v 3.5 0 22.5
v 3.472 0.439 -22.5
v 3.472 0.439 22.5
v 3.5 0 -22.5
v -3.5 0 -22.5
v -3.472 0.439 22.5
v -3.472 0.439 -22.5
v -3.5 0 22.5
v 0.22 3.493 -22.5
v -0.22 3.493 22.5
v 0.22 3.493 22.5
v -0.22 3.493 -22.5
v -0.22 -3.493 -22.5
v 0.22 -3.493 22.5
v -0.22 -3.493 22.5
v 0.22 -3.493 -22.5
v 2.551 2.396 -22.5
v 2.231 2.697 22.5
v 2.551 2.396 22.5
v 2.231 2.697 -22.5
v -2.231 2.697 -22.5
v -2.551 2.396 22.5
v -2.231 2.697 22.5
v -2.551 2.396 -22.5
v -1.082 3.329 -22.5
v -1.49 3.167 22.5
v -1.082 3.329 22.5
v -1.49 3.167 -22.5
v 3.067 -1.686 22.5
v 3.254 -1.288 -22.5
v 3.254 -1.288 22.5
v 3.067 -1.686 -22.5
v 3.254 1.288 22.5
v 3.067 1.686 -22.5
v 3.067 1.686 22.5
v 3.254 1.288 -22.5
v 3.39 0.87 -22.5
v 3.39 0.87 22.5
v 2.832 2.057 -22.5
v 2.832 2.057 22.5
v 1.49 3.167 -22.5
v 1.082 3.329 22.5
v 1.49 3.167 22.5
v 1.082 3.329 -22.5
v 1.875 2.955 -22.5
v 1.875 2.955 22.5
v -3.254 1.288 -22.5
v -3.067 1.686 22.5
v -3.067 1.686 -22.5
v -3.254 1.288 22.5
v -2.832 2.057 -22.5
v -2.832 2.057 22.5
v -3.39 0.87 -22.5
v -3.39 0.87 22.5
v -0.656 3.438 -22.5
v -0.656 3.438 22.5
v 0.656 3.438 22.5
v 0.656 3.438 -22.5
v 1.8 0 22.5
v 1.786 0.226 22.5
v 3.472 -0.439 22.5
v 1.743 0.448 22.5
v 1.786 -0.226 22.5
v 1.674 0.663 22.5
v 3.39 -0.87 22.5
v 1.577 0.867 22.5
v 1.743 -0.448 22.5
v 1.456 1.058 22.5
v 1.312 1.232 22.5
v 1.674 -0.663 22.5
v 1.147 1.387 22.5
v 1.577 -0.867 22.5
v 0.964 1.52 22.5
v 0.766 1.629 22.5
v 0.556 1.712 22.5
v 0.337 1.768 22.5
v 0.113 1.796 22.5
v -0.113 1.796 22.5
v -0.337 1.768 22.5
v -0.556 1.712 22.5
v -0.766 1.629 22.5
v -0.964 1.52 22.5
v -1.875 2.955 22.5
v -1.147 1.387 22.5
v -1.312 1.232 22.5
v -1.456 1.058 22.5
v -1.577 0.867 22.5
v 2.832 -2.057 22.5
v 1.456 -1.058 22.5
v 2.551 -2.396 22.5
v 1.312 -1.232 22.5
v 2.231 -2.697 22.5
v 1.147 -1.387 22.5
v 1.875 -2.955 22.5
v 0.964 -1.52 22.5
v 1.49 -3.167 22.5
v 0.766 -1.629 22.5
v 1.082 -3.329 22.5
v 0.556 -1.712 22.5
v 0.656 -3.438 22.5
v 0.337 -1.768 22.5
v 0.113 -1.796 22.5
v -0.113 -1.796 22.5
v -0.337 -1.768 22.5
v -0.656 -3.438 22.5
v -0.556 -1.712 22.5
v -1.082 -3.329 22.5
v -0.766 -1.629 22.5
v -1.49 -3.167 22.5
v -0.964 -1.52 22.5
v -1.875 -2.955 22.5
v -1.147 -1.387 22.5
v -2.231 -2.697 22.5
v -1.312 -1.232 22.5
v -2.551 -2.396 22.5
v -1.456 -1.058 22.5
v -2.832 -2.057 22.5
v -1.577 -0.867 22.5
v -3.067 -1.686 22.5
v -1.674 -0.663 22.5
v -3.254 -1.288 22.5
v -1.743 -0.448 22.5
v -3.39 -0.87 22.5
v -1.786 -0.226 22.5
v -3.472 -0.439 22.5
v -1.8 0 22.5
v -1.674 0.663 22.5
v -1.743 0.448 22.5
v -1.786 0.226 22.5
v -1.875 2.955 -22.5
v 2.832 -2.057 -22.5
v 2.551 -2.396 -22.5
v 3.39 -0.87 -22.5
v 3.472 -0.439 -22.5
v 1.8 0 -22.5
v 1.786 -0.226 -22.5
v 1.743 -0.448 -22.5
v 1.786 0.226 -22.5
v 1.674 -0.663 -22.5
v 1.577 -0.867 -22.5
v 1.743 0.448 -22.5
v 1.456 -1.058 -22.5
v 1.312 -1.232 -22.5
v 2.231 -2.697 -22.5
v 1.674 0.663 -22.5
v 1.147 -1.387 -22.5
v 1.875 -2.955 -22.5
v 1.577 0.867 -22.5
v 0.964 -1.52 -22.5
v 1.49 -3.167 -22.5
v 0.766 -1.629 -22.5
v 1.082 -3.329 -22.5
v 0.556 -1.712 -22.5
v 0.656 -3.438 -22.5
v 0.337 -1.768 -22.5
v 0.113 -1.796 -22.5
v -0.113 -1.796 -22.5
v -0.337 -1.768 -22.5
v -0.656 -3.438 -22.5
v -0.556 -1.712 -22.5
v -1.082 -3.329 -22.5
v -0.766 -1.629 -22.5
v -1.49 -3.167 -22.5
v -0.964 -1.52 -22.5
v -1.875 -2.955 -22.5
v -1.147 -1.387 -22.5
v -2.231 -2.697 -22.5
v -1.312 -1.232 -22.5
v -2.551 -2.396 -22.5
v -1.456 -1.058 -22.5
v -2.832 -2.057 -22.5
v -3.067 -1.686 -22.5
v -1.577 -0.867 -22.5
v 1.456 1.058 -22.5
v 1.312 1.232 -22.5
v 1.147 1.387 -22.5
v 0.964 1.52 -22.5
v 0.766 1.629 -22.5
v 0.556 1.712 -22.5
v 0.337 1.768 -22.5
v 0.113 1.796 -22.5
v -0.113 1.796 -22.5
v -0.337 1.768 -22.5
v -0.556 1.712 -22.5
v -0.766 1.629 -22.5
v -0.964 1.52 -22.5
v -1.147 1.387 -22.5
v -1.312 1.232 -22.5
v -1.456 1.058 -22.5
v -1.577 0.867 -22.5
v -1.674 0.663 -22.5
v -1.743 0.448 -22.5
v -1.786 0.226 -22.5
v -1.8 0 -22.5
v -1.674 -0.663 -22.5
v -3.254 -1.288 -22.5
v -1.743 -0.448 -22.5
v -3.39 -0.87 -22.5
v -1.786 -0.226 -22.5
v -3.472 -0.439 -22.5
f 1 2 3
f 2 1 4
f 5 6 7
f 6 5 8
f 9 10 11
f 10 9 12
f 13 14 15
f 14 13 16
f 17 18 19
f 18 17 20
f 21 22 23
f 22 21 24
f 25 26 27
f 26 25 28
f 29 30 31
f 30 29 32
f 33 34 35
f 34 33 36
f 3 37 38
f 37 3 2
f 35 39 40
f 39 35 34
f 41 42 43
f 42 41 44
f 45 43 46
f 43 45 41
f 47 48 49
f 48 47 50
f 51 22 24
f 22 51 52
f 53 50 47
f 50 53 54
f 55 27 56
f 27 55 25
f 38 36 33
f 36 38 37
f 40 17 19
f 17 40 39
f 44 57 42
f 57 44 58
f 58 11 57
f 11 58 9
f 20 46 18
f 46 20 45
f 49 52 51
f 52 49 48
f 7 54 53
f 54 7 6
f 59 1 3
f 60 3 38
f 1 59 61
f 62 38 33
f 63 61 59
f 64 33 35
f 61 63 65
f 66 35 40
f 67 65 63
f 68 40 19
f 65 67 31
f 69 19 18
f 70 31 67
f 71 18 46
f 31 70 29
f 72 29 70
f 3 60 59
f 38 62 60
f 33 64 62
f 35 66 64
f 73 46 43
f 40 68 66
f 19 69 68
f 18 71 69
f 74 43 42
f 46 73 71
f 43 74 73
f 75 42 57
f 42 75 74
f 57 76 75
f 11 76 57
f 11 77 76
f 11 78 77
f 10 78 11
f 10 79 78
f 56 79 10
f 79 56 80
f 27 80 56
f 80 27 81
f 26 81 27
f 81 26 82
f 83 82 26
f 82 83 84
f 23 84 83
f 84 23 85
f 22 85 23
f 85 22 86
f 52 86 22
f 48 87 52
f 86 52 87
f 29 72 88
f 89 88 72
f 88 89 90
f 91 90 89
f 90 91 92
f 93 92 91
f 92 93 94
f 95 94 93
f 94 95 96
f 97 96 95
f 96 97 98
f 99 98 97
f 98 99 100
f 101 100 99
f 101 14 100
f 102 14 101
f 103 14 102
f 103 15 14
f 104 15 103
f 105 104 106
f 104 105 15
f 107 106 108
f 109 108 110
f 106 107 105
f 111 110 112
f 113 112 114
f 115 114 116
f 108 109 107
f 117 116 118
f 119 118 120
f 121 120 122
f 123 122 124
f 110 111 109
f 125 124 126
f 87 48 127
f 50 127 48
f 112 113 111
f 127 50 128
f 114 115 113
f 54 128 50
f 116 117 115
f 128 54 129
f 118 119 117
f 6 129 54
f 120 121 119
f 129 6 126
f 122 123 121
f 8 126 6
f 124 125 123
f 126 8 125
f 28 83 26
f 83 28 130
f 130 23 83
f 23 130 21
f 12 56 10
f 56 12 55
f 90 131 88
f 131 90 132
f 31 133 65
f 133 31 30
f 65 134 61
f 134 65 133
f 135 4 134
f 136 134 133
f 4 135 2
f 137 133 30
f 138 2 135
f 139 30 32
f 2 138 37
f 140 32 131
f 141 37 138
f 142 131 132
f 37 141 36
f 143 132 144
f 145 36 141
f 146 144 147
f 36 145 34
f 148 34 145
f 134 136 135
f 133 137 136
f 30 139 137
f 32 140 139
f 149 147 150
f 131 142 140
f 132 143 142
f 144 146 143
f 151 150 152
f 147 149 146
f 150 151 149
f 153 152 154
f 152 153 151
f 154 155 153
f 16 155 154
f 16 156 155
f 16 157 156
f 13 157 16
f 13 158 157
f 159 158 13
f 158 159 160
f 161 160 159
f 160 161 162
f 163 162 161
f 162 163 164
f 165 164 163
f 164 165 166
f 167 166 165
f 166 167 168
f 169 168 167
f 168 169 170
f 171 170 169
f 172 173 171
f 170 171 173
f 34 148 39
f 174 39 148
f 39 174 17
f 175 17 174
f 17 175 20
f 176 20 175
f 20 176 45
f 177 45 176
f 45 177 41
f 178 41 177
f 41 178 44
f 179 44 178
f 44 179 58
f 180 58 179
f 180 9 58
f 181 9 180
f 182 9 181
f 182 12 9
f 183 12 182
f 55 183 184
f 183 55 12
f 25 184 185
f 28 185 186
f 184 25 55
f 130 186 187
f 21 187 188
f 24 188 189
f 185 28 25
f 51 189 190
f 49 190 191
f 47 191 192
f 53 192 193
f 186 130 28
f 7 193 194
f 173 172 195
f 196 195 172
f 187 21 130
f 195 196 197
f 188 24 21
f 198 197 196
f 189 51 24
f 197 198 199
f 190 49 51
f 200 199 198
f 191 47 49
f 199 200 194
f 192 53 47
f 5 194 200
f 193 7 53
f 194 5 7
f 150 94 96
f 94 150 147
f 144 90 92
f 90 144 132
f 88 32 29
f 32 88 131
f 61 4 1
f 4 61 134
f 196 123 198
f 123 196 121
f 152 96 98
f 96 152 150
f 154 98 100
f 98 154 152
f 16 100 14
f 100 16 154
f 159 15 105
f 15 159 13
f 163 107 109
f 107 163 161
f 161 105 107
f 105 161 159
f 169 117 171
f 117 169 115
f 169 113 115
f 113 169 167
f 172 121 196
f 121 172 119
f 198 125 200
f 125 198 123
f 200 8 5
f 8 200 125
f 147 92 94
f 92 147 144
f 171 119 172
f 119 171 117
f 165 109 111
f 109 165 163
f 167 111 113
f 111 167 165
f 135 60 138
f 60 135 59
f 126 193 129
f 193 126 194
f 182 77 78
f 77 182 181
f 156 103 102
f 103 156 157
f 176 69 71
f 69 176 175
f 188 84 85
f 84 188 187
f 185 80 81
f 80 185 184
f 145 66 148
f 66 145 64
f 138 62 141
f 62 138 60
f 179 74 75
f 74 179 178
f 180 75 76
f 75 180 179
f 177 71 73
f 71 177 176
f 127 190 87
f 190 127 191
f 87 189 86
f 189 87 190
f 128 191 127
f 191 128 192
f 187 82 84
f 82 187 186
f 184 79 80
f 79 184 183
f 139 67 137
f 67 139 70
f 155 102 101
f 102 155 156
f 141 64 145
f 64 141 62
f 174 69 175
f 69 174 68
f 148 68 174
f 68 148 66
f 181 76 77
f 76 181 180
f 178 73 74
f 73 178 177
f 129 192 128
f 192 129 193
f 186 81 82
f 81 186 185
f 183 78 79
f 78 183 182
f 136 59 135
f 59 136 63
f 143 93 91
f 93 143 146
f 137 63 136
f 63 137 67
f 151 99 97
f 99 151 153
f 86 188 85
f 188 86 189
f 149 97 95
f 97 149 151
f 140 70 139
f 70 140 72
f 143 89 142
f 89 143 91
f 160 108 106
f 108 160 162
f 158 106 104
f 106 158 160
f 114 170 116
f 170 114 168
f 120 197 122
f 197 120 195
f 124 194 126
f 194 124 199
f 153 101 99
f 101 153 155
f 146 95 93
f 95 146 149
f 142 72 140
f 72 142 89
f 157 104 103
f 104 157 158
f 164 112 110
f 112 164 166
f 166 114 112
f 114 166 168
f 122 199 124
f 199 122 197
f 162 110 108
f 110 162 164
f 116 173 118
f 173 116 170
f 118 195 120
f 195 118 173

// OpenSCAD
$fn = 50;


difference() {
	union() {
		translate(v = [0, 0, -22.5000000000]) {
			cylinder(h = 45, r = 3.5000000000);
		}
	}
	union() {
		translate(v = [0, 0, -100.0000000000]) {
			cylinder(h = 200, r = 1.8000000000);
		}
	}
}
